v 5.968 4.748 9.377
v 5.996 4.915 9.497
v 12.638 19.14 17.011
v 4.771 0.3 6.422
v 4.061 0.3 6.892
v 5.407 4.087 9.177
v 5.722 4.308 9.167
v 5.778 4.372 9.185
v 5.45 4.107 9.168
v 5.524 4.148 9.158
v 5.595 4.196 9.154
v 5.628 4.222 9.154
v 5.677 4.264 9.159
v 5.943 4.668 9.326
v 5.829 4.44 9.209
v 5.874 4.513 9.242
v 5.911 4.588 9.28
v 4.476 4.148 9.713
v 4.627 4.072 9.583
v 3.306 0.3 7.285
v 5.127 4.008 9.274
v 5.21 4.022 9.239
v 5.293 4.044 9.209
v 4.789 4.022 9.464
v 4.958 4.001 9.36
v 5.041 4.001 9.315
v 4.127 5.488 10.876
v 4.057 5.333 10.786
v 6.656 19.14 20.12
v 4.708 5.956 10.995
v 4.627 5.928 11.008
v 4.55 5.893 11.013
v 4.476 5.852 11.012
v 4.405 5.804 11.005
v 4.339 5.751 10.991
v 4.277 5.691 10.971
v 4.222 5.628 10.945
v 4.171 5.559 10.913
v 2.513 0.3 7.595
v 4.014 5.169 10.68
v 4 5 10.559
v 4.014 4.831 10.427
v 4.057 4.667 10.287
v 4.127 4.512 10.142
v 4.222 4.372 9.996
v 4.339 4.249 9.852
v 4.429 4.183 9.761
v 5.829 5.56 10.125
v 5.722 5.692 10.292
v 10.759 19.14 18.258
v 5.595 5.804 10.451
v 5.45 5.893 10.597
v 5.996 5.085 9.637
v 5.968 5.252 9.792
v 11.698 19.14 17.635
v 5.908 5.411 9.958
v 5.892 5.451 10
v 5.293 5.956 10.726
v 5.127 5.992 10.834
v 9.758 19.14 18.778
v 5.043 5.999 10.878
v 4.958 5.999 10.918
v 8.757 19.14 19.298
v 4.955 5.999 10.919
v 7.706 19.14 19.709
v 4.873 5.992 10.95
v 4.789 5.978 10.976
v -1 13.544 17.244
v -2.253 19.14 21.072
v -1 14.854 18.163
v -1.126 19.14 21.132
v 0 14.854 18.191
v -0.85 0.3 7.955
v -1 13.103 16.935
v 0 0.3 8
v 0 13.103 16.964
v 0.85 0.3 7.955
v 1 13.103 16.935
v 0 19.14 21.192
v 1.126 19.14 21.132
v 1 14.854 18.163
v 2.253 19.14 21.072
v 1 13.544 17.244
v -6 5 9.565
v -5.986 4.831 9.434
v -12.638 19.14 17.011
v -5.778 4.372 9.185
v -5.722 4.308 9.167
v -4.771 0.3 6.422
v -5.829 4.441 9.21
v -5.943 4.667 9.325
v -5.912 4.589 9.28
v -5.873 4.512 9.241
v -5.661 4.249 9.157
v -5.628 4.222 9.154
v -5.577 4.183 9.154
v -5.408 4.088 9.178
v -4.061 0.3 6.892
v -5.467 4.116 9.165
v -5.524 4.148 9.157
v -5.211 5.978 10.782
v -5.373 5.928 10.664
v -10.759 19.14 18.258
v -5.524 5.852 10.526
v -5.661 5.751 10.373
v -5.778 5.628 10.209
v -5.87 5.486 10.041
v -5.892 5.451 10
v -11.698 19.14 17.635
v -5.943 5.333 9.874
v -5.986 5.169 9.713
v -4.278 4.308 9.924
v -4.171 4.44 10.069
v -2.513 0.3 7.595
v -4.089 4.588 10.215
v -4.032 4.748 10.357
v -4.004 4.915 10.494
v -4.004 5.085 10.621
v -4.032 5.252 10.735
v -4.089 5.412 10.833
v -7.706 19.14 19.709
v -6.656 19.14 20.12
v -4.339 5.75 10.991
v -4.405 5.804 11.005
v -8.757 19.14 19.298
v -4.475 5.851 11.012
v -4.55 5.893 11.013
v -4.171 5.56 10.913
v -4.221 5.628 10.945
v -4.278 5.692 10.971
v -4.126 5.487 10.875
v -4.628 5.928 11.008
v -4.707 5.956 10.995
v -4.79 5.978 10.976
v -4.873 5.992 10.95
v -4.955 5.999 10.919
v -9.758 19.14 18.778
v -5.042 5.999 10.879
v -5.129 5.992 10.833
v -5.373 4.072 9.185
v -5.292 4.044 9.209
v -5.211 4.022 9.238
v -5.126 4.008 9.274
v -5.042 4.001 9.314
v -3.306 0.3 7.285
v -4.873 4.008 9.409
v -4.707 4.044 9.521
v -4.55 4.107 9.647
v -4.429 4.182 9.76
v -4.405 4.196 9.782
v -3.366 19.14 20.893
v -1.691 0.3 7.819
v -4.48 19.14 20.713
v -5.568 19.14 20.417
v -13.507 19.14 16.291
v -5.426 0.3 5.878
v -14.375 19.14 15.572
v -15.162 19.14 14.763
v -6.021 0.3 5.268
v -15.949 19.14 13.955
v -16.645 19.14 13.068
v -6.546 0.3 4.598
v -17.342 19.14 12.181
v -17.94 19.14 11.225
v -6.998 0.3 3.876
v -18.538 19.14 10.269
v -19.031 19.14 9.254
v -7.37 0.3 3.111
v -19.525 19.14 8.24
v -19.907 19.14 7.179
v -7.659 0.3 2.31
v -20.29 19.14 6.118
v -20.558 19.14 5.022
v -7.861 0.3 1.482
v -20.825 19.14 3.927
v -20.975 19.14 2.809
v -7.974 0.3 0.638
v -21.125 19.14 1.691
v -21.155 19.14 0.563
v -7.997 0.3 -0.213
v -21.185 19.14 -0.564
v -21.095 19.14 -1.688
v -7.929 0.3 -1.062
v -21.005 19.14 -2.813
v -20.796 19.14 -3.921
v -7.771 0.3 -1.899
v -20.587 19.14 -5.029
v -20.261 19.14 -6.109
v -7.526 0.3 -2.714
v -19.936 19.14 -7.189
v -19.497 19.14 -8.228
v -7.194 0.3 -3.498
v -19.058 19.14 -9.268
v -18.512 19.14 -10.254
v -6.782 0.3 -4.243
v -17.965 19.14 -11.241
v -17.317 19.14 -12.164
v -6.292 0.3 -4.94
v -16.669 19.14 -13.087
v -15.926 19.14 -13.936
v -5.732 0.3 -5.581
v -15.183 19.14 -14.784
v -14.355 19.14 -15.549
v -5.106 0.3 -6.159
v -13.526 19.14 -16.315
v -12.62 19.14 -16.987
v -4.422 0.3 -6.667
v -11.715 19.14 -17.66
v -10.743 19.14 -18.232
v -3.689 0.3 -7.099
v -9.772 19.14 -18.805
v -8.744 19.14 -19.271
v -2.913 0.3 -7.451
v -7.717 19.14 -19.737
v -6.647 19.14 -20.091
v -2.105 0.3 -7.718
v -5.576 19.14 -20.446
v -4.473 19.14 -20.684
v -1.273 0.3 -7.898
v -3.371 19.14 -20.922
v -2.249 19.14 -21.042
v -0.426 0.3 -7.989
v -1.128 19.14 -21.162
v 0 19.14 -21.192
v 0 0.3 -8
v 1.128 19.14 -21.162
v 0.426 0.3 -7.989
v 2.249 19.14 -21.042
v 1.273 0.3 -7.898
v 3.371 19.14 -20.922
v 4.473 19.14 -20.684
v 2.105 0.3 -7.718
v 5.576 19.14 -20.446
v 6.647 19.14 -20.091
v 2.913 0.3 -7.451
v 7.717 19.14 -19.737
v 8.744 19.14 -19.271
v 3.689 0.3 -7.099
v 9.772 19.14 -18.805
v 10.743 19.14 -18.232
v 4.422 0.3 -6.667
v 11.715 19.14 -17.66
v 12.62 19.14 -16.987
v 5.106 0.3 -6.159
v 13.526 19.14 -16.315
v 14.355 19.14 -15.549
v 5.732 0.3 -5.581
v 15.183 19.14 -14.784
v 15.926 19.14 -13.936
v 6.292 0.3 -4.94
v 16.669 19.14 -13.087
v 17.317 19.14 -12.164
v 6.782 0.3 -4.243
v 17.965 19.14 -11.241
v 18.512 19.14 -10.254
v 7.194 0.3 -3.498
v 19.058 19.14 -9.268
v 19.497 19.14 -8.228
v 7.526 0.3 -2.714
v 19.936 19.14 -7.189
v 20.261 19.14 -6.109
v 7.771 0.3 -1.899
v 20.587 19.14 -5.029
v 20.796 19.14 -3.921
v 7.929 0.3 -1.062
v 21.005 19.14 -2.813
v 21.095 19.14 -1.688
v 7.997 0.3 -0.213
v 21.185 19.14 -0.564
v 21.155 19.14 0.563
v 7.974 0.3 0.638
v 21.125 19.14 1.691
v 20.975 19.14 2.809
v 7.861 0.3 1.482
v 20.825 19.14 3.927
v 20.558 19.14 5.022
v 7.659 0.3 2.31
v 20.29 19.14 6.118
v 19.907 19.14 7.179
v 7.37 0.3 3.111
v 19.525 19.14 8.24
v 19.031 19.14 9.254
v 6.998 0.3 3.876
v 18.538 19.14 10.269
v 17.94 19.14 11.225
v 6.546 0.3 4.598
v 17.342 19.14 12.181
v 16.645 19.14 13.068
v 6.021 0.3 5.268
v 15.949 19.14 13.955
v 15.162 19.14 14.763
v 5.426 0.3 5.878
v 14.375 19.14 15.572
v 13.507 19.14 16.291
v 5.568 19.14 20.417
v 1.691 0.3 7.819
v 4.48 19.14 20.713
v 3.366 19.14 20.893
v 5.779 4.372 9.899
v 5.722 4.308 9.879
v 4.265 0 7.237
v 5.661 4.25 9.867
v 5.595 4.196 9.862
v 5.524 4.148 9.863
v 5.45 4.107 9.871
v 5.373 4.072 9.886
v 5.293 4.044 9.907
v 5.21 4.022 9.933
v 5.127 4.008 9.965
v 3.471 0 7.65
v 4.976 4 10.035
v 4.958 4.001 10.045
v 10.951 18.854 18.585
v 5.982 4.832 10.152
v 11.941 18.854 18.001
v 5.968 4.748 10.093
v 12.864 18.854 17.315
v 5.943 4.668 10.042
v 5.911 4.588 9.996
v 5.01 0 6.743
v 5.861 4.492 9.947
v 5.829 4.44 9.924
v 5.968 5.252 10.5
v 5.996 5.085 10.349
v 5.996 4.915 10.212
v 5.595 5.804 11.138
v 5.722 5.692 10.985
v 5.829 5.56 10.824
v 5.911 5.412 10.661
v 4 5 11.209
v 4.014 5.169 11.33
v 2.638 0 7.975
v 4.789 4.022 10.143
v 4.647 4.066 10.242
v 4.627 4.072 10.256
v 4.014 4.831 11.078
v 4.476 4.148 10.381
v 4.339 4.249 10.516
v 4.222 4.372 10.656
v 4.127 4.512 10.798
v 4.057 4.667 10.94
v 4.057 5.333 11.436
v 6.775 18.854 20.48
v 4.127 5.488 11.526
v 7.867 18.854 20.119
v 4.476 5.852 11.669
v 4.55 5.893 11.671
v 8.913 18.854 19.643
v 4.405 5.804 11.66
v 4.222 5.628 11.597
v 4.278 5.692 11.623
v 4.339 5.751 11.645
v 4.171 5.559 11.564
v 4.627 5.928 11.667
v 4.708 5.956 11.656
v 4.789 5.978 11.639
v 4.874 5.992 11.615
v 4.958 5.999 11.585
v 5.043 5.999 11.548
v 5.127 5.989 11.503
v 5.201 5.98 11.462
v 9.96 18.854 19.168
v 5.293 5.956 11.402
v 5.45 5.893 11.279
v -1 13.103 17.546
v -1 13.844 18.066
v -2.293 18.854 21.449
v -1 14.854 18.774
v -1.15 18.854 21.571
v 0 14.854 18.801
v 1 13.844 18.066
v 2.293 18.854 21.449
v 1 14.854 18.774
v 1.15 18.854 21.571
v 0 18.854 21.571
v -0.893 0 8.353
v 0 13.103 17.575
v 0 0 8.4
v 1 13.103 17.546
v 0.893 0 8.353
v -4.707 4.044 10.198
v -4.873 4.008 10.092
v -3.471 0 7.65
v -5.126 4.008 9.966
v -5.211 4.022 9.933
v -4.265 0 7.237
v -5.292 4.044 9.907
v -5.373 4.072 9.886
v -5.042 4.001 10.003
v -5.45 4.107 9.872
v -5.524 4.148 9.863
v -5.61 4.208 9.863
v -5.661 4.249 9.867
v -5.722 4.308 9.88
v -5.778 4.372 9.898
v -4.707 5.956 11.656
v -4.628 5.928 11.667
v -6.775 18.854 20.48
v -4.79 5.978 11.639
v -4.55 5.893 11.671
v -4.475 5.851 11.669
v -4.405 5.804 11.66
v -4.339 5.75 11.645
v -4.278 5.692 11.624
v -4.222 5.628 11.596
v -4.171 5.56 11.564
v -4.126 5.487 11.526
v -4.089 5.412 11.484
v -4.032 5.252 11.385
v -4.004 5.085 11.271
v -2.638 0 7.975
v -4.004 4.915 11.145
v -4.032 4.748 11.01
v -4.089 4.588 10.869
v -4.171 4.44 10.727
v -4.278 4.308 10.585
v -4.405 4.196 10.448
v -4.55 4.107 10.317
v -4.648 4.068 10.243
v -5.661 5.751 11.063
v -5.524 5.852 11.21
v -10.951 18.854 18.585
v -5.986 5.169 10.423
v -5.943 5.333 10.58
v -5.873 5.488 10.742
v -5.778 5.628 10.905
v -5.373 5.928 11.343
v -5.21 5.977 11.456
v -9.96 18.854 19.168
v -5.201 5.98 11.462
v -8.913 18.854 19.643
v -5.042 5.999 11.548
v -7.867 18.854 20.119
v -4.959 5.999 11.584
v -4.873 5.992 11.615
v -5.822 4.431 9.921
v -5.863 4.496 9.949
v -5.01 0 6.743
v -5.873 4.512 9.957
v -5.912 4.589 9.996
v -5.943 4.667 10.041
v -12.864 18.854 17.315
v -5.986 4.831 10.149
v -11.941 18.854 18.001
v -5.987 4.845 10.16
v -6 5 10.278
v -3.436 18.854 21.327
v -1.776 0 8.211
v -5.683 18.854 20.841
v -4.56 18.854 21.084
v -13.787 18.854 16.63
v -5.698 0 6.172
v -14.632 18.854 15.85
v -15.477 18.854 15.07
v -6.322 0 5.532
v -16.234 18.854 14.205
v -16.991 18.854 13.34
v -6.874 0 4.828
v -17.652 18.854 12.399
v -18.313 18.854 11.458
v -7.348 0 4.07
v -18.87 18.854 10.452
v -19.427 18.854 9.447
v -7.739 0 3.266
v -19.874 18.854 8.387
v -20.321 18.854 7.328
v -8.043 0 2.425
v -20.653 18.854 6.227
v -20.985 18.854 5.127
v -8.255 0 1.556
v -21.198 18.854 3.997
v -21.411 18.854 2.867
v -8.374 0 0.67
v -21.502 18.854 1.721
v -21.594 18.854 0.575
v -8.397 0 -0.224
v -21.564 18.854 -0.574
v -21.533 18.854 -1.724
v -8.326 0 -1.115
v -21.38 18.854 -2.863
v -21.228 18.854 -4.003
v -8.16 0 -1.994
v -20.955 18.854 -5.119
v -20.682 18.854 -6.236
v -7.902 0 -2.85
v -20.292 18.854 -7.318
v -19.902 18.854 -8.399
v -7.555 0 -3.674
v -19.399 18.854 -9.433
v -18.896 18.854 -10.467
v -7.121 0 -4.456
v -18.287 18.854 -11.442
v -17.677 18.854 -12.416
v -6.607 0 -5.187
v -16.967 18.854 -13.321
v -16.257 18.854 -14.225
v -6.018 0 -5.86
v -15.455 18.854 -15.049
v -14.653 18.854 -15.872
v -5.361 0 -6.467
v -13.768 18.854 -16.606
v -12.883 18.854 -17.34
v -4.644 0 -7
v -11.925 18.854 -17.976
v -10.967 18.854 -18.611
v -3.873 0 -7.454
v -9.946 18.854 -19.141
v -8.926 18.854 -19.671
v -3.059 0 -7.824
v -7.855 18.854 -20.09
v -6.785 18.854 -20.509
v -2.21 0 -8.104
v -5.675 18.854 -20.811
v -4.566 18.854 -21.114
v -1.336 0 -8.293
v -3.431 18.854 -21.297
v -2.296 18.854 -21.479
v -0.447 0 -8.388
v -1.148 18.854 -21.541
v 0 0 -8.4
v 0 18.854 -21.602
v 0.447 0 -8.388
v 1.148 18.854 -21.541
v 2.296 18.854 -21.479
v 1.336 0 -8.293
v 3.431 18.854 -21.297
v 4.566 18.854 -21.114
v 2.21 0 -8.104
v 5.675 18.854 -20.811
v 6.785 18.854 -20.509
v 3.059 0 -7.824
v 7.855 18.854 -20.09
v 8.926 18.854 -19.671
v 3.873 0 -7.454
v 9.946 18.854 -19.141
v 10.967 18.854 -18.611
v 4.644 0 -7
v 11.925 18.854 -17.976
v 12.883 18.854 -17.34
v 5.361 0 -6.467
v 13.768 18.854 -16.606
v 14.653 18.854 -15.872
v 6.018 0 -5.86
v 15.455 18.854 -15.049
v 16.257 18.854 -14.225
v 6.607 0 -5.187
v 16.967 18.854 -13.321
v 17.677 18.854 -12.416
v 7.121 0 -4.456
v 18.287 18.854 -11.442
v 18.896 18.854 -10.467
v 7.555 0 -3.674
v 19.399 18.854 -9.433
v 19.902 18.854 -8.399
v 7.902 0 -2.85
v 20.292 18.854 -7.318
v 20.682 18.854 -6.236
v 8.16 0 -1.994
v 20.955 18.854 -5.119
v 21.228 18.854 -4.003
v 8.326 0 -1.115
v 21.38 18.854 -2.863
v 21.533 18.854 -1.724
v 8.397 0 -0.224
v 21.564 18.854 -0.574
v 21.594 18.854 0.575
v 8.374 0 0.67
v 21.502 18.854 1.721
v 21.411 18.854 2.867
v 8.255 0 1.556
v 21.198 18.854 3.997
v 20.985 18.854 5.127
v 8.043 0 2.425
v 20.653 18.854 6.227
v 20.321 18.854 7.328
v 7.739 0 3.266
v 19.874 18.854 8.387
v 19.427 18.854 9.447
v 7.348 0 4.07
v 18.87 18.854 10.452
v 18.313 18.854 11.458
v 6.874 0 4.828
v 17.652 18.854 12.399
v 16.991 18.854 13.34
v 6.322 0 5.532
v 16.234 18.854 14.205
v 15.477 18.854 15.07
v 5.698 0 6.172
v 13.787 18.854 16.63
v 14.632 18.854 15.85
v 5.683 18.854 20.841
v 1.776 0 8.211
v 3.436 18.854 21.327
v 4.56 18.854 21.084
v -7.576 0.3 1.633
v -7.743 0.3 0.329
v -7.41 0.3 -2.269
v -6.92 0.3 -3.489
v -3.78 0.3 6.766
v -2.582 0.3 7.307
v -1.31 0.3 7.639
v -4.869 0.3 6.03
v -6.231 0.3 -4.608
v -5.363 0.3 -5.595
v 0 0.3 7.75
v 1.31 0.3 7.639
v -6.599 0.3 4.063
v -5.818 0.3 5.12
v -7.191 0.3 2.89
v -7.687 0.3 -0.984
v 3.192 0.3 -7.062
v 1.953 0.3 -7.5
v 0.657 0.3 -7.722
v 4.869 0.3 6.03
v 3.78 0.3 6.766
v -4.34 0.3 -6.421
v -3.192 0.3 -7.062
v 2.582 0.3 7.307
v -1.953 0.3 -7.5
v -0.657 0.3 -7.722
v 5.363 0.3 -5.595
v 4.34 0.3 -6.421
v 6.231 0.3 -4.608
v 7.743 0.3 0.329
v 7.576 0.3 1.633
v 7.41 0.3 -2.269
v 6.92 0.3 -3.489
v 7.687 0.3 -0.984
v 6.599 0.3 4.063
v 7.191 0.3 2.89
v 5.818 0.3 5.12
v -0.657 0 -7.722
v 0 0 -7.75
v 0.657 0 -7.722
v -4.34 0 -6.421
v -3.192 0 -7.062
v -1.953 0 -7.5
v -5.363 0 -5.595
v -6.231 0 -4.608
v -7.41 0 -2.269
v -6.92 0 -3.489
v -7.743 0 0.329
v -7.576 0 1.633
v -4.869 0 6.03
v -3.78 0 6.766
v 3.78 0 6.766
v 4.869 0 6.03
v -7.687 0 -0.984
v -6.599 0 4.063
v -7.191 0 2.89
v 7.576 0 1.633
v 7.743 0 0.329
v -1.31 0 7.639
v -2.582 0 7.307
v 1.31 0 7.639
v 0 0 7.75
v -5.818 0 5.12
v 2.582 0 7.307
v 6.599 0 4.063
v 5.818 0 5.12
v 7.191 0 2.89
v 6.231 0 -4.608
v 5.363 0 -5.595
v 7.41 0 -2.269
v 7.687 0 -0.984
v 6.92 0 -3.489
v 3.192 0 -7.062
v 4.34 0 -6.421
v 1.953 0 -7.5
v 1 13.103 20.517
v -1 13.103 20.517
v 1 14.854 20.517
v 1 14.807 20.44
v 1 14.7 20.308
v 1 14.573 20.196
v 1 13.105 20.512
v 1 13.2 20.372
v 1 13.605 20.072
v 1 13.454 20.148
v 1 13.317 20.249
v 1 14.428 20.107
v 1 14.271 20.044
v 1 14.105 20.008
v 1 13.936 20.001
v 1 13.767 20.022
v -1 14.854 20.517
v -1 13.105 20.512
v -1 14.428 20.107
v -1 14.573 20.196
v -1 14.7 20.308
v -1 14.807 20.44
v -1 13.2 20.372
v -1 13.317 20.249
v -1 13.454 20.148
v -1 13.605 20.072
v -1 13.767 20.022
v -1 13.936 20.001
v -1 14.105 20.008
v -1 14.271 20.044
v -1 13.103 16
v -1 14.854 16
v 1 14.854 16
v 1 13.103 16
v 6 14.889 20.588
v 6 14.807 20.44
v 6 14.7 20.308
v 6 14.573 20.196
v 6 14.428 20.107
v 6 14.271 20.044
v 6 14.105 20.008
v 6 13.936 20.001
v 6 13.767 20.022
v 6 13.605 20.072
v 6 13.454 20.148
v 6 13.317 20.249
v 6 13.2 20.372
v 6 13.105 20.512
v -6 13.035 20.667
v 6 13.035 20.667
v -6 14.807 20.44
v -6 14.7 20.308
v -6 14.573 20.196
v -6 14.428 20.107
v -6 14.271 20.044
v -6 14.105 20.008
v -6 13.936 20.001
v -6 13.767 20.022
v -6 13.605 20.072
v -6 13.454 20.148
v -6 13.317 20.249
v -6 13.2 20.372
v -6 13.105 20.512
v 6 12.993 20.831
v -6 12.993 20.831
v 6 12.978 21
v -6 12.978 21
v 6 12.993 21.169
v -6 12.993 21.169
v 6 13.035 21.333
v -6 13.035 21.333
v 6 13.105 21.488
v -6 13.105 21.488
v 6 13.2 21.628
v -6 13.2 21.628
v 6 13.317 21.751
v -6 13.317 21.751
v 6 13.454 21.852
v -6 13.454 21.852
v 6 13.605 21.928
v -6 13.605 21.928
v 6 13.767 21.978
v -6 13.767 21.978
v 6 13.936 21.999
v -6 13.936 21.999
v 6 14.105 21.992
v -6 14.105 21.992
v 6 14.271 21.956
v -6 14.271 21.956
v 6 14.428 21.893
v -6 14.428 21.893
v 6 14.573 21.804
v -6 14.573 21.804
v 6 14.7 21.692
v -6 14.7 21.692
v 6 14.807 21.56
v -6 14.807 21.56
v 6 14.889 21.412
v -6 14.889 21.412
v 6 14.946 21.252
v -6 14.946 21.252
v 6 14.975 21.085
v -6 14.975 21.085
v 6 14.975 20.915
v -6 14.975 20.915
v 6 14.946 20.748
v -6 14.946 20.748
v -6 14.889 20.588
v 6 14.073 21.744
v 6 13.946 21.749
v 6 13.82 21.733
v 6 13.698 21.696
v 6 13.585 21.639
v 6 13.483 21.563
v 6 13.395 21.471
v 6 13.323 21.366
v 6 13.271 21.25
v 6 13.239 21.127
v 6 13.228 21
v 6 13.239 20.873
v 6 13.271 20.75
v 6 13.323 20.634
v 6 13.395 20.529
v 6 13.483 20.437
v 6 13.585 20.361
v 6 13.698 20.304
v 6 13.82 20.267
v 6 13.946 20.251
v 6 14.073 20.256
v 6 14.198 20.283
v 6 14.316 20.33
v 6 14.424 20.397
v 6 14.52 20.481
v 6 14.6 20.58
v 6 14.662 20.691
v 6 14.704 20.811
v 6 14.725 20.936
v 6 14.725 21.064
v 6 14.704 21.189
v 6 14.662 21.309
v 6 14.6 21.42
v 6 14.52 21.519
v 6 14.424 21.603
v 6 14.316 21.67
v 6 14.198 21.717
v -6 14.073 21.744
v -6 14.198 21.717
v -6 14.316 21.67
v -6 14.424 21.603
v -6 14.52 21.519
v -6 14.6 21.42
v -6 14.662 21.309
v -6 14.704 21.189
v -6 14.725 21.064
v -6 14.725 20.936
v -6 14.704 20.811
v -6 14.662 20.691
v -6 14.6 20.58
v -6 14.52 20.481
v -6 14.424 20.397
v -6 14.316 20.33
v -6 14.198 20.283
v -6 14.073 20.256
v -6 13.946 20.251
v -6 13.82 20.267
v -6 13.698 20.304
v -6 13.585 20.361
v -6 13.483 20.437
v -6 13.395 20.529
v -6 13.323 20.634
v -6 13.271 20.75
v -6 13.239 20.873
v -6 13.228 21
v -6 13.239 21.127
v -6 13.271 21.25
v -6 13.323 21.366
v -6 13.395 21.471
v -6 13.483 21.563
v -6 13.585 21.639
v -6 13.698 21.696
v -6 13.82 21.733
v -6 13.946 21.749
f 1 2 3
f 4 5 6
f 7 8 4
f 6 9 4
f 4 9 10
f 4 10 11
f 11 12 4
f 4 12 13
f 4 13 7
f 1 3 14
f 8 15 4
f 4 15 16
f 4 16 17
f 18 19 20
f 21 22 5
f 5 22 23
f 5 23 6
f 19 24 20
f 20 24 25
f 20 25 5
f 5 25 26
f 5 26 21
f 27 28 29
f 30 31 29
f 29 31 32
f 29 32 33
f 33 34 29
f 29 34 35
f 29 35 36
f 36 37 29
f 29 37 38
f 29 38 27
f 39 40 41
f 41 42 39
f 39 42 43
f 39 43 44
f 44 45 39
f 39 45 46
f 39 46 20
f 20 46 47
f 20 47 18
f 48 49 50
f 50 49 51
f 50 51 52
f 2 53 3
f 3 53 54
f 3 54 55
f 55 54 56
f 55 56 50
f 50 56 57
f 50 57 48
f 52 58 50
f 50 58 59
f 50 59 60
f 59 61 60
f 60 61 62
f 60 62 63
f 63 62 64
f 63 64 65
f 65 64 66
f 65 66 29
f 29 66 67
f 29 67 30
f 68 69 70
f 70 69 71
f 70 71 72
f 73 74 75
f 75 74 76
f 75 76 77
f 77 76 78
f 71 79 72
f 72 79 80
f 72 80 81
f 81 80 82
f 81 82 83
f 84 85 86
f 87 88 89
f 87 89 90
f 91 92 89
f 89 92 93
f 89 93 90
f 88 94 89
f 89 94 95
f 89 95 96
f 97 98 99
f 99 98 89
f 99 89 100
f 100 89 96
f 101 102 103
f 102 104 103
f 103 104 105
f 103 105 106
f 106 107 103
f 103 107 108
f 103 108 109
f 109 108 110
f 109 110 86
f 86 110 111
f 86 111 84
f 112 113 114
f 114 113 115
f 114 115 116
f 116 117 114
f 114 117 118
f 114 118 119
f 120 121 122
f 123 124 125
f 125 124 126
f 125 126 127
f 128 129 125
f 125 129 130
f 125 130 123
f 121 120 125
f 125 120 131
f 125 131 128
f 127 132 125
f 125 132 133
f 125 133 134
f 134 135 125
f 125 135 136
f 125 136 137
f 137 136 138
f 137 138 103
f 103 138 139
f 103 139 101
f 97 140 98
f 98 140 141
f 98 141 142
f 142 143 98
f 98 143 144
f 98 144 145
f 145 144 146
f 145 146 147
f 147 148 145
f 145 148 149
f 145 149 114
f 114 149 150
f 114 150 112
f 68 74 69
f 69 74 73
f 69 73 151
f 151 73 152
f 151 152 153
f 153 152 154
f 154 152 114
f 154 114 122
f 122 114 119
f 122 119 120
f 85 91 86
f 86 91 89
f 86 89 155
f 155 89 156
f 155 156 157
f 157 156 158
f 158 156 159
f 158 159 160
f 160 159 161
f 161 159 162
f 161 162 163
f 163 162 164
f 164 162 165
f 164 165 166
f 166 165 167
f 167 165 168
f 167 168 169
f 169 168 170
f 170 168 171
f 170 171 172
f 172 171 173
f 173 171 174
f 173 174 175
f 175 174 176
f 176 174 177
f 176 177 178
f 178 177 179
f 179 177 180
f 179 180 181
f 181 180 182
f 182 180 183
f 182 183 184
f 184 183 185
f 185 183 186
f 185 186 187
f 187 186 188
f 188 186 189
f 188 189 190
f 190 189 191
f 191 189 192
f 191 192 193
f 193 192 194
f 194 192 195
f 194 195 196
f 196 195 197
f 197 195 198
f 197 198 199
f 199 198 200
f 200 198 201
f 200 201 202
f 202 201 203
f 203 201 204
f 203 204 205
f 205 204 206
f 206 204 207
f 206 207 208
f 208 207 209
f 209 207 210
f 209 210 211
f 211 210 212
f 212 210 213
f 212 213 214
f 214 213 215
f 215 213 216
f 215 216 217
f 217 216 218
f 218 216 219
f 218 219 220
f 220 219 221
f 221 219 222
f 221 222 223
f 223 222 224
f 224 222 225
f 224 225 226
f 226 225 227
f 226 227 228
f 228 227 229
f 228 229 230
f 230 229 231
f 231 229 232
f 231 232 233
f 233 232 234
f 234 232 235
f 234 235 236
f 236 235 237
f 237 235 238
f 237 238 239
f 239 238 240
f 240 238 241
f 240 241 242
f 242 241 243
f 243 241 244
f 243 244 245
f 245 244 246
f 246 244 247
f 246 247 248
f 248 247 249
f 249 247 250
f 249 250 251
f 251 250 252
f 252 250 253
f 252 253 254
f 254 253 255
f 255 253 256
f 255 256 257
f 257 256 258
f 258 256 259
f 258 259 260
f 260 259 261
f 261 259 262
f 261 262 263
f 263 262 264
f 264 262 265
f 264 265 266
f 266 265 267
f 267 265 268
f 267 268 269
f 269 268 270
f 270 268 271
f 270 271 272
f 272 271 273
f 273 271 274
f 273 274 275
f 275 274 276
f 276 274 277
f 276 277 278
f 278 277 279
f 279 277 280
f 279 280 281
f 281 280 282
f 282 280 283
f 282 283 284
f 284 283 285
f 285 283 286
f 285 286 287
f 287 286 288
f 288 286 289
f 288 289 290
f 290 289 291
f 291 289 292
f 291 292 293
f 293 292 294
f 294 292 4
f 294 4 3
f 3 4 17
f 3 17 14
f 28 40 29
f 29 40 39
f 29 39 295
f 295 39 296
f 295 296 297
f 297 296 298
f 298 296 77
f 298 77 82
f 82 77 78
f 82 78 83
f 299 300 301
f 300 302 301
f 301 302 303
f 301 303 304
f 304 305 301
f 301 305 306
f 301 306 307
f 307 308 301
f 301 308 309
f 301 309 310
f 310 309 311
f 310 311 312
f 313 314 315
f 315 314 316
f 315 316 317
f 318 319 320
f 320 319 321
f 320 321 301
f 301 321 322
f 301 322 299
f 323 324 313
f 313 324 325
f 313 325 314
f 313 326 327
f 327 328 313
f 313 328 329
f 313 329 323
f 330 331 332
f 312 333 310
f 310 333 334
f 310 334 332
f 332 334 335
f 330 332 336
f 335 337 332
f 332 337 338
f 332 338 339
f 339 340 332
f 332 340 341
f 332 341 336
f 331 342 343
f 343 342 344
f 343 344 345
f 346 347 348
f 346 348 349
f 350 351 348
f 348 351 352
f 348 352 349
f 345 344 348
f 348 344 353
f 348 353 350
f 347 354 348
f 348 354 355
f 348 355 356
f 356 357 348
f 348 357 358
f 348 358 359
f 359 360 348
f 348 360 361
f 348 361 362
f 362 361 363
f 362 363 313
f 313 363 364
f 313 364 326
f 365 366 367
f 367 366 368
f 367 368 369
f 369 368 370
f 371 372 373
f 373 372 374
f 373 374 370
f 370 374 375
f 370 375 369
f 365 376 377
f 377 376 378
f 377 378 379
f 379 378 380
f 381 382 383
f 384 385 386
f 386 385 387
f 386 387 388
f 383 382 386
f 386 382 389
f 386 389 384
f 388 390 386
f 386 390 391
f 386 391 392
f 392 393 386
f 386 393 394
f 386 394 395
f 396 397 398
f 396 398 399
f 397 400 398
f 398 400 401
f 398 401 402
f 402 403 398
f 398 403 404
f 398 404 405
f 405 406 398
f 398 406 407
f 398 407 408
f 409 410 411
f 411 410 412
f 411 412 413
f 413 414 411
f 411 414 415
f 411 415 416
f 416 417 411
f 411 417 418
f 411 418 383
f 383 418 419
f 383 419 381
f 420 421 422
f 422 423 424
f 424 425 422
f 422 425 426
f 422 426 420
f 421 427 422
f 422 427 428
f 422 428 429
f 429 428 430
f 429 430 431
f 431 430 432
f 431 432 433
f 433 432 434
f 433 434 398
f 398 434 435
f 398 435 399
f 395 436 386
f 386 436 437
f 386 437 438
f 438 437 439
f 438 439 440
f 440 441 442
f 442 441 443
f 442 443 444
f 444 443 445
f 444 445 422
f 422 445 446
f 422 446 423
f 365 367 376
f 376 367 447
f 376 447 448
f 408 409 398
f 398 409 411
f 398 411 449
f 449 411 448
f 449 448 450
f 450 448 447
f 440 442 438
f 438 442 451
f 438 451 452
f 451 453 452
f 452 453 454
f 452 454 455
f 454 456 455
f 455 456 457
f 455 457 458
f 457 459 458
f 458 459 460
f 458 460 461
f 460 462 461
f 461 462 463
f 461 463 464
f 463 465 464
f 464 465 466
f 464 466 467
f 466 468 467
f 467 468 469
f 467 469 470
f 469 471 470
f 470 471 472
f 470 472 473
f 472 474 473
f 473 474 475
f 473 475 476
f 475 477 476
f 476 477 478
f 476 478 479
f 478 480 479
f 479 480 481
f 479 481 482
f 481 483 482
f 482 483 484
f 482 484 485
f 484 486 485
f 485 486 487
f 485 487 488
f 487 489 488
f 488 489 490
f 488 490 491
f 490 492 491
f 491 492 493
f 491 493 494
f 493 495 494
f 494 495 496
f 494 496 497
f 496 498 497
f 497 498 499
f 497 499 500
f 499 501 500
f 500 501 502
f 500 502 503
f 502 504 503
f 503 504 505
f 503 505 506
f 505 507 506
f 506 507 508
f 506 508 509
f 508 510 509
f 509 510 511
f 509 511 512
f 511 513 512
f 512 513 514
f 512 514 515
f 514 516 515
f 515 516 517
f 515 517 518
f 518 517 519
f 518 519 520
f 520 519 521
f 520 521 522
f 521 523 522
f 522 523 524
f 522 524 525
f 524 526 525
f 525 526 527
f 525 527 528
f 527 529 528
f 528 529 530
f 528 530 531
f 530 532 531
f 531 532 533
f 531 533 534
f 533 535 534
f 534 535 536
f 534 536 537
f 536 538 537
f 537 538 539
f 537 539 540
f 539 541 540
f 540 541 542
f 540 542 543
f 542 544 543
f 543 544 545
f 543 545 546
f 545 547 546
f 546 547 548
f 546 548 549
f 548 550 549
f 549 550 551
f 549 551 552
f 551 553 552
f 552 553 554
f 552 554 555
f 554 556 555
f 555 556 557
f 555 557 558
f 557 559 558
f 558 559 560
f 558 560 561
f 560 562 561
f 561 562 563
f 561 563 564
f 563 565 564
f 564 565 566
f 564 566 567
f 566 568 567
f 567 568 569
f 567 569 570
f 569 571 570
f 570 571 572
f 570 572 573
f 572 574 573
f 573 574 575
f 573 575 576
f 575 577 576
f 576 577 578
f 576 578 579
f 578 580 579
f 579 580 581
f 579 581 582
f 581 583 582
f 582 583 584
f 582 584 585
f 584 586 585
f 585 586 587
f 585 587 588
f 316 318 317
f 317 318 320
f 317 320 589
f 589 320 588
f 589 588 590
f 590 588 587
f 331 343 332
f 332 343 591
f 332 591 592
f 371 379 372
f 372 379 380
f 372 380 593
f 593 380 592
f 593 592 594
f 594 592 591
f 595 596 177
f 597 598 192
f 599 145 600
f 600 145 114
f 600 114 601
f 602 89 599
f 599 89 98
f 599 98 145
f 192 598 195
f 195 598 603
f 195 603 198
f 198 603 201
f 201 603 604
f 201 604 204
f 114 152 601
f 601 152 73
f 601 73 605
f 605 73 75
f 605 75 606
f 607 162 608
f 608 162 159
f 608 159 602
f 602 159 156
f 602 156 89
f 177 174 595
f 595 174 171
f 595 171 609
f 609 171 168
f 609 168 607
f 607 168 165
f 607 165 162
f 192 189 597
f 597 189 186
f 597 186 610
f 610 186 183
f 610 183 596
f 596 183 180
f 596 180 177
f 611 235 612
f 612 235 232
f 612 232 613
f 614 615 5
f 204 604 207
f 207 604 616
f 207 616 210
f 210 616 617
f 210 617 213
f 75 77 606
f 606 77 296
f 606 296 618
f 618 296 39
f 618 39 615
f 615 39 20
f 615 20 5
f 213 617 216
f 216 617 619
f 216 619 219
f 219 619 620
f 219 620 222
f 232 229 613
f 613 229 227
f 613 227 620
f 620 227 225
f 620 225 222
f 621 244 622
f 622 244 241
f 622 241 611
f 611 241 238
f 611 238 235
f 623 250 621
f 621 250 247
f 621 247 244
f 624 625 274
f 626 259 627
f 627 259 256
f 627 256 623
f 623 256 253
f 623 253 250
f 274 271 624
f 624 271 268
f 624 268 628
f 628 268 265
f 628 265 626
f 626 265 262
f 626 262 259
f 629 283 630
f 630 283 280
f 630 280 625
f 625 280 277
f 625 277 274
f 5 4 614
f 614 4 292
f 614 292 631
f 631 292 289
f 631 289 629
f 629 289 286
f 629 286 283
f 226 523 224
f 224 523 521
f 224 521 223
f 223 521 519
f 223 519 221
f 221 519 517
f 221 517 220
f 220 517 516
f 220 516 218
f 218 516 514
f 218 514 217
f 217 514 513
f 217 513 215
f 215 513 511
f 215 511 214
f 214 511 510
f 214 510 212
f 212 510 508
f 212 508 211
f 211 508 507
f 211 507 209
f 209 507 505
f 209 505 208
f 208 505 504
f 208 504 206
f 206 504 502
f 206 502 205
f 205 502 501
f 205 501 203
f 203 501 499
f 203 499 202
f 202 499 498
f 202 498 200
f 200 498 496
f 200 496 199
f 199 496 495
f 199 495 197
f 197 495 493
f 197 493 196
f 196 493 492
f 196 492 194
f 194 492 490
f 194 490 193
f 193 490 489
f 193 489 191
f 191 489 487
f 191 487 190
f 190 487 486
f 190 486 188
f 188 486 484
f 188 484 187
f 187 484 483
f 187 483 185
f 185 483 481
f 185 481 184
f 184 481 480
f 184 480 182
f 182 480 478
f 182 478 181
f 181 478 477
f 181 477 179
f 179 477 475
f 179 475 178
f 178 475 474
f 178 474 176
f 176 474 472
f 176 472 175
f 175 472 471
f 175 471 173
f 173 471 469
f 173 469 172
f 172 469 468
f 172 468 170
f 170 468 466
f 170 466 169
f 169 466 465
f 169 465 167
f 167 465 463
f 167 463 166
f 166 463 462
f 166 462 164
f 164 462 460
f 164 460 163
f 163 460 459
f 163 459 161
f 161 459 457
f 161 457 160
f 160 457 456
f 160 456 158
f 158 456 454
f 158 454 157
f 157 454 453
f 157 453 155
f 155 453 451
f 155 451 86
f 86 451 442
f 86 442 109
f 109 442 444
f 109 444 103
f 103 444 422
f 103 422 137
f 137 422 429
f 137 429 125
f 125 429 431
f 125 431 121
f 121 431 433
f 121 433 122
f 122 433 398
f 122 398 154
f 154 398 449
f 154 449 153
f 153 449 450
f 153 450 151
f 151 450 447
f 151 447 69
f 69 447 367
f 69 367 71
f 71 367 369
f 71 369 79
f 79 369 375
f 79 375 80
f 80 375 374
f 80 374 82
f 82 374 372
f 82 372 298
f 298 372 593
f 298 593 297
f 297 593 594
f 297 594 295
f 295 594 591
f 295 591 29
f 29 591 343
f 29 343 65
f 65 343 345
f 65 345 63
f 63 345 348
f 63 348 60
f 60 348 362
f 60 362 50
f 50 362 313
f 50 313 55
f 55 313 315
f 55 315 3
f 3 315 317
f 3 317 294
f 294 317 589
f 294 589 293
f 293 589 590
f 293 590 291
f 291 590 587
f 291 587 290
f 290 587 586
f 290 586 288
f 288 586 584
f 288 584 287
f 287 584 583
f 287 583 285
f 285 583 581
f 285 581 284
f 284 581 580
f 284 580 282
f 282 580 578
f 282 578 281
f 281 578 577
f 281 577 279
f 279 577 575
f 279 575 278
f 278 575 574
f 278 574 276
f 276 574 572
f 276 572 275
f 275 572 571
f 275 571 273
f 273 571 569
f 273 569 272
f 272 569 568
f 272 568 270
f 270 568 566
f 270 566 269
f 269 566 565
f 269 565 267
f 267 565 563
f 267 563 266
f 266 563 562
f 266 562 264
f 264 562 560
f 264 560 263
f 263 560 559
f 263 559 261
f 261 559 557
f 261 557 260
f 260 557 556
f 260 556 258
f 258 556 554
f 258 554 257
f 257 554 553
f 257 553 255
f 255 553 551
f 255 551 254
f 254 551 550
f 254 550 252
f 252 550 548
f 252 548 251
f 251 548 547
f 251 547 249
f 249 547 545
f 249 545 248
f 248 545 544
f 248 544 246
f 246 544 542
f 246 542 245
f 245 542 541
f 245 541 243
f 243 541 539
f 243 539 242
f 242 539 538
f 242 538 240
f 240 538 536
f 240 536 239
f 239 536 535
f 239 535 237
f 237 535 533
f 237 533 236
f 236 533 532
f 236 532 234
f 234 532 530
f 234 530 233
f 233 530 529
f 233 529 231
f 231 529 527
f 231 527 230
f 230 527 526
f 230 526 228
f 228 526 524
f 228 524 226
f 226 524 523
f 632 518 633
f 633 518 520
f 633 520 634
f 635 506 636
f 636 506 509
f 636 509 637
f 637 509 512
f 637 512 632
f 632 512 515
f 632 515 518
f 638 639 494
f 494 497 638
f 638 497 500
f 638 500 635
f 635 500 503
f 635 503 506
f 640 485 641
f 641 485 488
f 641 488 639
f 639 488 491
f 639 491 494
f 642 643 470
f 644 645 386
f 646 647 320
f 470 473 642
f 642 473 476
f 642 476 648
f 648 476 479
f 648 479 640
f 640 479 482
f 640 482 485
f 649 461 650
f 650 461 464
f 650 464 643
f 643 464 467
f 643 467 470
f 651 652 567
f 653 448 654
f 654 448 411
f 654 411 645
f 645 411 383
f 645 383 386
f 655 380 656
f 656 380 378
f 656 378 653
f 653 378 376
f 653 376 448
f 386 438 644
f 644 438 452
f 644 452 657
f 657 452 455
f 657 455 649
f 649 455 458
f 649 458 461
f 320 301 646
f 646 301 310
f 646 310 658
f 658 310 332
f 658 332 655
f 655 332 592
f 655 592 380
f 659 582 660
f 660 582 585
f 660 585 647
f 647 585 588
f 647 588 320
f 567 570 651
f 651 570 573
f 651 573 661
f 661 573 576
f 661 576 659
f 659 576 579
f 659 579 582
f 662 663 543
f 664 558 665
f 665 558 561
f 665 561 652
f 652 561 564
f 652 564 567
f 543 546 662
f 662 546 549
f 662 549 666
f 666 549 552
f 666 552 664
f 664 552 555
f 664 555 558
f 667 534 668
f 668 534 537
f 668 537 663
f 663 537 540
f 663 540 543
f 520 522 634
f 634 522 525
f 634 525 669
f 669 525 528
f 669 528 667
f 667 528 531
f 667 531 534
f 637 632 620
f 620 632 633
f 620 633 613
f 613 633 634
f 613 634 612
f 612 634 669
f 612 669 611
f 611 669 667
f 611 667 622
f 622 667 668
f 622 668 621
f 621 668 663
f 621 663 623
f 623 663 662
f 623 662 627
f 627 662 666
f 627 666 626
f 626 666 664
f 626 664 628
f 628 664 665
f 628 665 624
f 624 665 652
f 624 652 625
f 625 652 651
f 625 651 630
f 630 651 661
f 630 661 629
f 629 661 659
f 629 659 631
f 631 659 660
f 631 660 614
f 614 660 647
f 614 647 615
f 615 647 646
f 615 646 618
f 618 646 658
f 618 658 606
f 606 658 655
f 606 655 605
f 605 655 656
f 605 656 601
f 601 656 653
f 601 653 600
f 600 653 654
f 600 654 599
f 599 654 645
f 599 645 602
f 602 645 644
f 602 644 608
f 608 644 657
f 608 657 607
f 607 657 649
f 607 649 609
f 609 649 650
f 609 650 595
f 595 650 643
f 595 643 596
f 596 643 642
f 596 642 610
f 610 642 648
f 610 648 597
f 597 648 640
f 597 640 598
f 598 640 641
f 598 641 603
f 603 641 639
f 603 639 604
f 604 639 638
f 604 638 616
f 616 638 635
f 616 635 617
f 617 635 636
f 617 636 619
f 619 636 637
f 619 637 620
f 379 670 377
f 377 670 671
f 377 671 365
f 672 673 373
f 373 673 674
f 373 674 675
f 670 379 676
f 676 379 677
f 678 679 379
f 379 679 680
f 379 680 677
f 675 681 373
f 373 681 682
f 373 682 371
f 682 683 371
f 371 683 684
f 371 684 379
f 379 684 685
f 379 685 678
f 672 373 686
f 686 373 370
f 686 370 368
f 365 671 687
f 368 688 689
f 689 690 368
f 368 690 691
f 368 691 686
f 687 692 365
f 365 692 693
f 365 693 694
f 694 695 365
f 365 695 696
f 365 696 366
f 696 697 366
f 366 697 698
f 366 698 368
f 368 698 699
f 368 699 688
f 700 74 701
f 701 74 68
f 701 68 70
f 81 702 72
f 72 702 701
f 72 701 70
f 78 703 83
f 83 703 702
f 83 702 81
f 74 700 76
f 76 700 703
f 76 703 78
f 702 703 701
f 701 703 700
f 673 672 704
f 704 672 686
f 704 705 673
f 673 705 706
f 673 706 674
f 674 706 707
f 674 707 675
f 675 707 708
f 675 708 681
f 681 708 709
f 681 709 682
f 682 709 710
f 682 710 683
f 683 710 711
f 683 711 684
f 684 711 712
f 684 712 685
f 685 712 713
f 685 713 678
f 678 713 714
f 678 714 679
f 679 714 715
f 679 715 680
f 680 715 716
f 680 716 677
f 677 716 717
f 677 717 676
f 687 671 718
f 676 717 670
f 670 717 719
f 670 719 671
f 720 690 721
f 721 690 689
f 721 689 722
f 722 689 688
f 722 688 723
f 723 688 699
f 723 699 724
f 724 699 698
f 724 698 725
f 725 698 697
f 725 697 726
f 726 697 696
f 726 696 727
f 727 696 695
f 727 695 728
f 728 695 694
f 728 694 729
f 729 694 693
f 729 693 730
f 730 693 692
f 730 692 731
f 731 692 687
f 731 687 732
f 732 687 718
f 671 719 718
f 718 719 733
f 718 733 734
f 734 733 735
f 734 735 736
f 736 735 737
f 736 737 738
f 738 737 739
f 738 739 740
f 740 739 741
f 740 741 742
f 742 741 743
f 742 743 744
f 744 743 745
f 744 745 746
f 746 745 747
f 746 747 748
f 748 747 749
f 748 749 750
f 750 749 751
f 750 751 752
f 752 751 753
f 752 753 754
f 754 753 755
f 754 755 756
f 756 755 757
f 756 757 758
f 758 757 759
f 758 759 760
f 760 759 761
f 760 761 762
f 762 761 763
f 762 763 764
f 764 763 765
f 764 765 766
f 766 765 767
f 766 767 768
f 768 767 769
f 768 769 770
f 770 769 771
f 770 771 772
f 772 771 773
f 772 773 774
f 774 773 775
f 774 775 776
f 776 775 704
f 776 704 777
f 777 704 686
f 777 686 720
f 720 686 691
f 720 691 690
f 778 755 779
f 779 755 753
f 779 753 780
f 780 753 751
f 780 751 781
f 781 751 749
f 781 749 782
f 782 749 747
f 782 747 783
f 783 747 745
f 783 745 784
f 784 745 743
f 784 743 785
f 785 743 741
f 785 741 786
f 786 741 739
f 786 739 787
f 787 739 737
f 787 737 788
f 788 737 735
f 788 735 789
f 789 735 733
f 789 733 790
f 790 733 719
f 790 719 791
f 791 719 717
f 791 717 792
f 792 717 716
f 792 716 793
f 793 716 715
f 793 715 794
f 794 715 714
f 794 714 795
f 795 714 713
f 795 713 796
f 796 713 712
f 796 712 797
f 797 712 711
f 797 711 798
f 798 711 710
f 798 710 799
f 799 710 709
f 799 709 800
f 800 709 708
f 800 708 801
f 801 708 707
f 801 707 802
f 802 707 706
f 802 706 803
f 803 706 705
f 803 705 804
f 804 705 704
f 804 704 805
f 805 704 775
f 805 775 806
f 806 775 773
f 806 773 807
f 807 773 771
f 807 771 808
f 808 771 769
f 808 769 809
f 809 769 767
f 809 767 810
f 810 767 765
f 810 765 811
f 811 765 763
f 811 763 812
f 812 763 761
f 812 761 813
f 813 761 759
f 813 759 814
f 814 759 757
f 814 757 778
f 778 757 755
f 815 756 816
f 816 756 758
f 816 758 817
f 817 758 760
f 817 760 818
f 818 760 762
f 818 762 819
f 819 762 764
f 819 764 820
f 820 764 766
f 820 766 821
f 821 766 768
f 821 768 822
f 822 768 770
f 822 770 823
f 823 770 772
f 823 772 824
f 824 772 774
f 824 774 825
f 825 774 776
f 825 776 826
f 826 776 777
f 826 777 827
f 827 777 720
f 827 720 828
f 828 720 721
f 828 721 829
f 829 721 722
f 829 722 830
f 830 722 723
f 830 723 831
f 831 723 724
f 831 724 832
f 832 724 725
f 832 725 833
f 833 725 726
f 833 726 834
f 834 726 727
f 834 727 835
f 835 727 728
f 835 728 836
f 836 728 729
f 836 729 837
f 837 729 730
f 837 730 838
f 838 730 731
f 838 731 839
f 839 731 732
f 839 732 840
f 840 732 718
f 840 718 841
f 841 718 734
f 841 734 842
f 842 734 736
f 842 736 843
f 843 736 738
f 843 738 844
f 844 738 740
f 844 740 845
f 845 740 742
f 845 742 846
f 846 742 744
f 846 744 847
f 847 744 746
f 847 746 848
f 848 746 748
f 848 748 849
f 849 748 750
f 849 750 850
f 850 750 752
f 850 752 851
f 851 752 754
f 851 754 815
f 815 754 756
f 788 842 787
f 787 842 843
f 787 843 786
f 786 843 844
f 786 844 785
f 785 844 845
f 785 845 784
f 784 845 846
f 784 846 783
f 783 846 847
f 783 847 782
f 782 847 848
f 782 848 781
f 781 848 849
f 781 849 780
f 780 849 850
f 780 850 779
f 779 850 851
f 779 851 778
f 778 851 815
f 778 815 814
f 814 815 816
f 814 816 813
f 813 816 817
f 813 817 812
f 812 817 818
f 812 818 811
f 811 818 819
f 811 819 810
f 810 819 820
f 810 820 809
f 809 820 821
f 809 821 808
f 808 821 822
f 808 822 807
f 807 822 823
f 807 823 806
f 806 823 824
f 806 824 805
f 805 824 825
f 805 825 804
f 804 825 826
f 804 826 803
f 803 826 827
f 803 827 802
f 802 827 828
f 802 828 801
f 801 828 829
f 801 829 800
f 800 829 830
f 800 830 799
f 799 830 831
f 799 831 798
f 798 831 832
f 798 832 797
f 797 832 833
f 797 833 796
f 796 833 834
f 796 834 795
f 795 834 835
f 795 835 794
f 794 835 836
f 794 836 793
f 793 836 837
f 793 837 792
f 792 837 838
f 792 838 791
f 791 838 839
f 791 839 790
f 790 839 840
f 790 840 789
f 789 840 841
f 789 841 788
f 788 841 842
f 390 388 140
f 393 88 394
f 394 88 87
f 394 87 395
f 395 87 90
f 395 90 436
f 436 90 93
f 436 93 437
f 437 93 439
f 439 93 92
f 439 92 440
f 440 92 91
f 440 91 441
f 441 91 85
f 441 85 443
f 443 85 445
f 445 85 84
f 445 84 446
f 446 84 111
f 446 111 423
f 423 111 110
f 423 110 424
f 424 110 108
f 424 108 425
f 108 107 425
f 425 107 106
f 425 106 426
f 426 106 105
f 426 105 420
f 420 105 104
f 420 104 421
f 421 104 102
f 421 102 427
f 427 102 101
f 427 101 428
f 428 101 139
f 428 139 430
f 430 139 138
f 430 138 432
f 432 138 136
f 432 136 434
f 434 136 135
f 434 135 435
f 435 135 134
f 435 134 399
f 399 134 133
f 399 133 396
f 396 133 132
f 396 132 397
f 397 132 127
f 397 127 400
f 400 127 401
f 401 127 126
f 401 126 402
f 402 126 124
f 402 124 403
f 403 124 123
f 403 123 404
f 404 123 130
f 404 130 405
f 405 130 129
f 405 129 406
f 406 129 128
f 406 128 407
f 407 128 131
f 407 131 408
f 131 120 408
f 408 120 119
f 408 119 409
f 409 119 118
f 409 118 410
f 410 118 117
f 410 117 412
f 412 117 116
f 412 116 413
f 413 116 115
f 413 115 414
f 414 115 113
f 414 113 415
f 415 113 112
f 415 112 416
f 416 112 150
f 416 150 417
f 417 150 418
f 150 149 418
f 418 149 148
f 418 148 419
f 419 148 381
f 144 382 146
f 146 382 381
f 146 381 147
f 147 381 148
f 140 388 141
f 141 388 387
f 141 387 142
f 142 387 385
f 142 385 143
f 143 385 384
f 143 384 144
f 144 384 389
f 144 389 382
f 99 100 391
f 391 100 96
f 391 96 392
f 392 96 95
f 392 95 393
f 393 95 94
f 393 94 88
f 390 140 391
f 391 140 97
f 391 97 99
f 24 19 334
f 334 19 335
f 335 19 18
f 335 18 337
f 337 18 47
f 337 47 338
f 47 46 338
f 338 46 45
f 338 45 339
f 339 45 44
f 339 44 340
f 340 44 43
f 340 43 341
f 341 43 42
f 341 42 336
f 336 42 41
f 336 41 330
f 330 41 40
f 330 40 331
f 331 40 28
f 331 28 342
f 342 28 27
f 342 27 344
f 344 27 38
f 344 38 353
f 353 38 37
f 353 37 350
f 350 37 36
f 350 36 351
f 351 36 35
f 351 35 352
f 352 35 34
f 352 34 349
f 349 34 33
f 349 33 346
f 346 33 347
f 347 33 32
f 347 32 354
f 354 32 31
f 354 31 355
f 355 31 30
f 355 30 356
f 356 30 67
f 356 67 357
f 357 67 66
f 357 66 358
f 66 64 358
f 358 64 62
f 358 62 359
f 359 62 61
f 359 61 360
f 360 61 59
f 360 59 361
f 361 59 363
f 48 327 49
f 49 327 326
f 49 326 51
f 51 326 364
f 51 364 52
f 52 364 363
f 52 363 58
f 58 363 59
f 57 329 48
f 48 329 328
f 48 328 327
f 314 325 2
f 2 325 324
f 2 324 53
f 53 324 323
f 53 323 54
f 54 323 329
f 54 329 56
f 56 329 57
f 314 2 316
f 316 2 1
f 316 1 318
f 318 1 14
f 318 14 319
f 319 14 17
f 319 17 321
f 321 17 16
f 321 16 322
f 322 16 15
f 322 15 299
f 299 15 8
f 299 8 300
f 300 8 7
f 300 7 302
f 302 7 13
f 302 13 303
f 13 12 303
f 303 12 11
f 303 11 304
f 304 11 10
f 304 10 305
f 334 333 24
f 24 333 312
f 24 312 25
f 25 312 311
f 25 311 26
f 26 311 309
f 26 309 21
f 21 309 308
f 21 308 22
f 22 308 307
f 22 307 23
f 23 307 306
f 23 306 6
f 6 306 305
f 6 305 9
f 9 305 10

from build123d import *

# Parameters (mm, degrees)
CUT_EXTRUDE1_REACH       = 37.892
SKETCH4_R                = 7.75
BOSS_EXTRUDE1_DEPTH      = 3
BOSS_EXTRUDE1_DEPTH_BACK = 2
BOSS_EXTRUDE1_START      = 18
SKETCH13_W               = 2
SKETCH13_H               = 1.751149917
BOSS_EXTRUDE2_DEPTH      = 5
BOSS_EXTRUDE2_DEPTH_BACK = 7
SKETCH14_R               = 1
SKETCH15_R               = 0.75
CUT_EXTRUDE2_DEPTH       = 15
SKETCH16_R               = 1
CUT_EXTRUDE3_DEPTH       = 20


with BuildPart() as part:
    # Sketch3 → Revolve1 (revolve)
    with BuildSketch(Plane.XY):
        Polygon((8.400325033, 0), (21.601834058, 18.8537088), (21.192258036, 19.140497019), (8, 0.3), (0, 0.3), (0, 0), align=None)
    revolve(axis=Axis((0, 0, 0), (0, 1, 0)))

    # Sketch4 → Cut-Extrude1 (cut, up to next)
    with BuildSketch(Plane(origin=(0, 0.3, 0), x_dir=(1, 0, 0), z_dir=(0, 1, 0)), mode=Mode.PRIVATE) as cut_extrude1_sk1:
        Circle(SKETCH4_R)
    cut_extrude1_tool1 = extrude(cut_extrude1_sk1.sketch, amount=-CUT_EXTRUDE1_REACH, mode=Mode.PRIVATE) & part.part
    add(cut_extrude1_tool1.solids().sort_by_distance((0, 0.3, 0))[0], mode=Mode.SUBTRACT)

    # Sketch13 → Boss-Extrude1 (add, two sides: drawn at the far end of the back side and taken through both)
    with BuildSketch(Plane.XY.offset(BOSS_EXTRUDE1_START - BOSS_EXTRUDE1_DEPTH_BACK)):
        with Locations((0, 13.978133842)):
            Rectangle(SKETCH13_W, SKETCH13_H)
    extrude(amount=BOSS_EXTRUDE1_DEPTH + BOSS_EXTRUDE1_DEPTH_BACK)

    # Sketch14 → Boss-Extrude2 (add, two sides: drawn at the far end of the back side and taken through both)
    with BuildSketch(Plane.ZY.offset(1).offset(-BOSS_EXTRUDE2_DEPTH_BACK)):
        with Locations((21, 13.978133842)):
            Circle(SKETCH14_R)
    extrude(amount=BOSS_EXTRUDE2_DEPTH + BOSS_EXTRUDE2_DEPTH_BACK)

    # Sketch15 → Cut-Extrude2 (cut)
    with BuildSketch(Plane.ZY.offset(6)):
        with Locations((21, 13.978133842)):
            Circle(SKETCH15_R)
    extrude(amount=-CUT_EXTRUDE2_DEPTH, mode=Mode.SUBTRACT)

    # Sketch16 → Cut-Extrude3 (cut)
    with BuildSketch(Plane.XY):
        with Locations((-5, 5)):
            Circle(SKETCH16_R)
        with Locations((5, 5)):
            Circle(SKETCH16_R)
    extrude(amount=CUT_EXTRUDE3_DEPTH, mode=Mode.SUBTRACT)


solid = part.part
